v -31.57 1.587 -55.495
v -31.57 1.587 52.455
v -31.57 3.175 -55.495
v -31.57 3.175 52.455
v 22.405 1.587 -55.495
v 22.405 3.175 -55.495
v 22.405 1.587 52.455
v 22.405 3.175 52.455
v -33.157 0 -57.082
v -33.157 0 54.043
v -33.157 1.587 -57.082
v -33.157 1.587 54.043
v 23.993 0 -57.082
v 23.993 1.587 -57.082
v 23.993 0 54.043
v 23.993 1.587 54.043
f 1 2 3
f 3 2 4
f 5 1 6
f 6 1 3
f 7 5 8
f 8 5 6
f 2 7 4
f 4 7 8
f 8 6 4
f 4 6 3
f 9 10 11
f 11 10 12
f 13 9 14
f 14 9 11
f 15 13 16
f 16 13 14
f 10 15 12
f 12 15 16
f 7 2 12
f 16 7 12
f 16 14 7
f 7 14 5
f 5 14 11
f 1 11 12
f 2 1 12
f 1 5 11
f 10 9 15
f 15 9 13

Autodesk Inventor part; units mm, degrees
ref_plane "YZ Plane" through (0, 0, 0) normal (1, 0, 0) x (0, 1, 0)
ref_plane "XZ Plane" through (0, 0, 0) normal (0, 1, 0) x (-1, 0, 0)
ref_plane "XY Plane" through (0, 0, 0) normal (0, 0, 1) x (1, 0, 0)
sketch "Sketch1" plane through (0, 0, 0) normal (0, 1, 0) x (-1, 0, 0)
  line L0 (33.1574, 54.0426) -> (-23.9926, 54.0426)
  line L1 (-23.9926, 54.0426) -> (-23.9926, -57.0824)
  line L2 (-23.9926, -57.0824) -> (33.1574, -57.0824)
  line L3 (33.1574, -57.0824) -> (33.1574, 54.0426)
  point P0 (0, 0)
  dimension "d0" = 111.125
  dimension "d1" = 57.15
extrude "Extrusion1" add sketch "Sketch1" along normal blind 1.5875
sketch "Sketch2" plane through (0, 1.5875, 0) normal (0, 1, 0) x (1, 0, 0)
  line L0 (-31.5699, -52.4551) -> (22.4051, -52.4551)
  line L1 (22.4051, -52.4551) -> (22.4051, 55.4949)
  line L2 (22.4051, 55.4949) -> (-31.5699, 55.4949)
  line L3 (-31.5699, 55.4949) -> (-31.5699, -52.4551)
  line L4 (-33.1574, -54.0426) -> (23.9926, -54.0426) projected
  line L5 (23.9926, -54.0426) -> (23.9926, 57.0824) projected
  line L6 (23.9926, 57.0824) -> (-33.1574, 57.0824) projected
  line L7 (-33.1574, 57.0824) -> (-33.1574, -54.0426) projected
  point P0 (0, 0)
  dimension "d4" = 1.5875
  dimension "d5" = 1.5875
  dimension "d6" = 1.5875
  dimension "d7" = 1.5875
extrude "Extrusion2" add sketch "Sketch2" along normal blind 1.5875 contours L3 L2 L1 L0
properties part number "SD_BaseStation_Lid"
